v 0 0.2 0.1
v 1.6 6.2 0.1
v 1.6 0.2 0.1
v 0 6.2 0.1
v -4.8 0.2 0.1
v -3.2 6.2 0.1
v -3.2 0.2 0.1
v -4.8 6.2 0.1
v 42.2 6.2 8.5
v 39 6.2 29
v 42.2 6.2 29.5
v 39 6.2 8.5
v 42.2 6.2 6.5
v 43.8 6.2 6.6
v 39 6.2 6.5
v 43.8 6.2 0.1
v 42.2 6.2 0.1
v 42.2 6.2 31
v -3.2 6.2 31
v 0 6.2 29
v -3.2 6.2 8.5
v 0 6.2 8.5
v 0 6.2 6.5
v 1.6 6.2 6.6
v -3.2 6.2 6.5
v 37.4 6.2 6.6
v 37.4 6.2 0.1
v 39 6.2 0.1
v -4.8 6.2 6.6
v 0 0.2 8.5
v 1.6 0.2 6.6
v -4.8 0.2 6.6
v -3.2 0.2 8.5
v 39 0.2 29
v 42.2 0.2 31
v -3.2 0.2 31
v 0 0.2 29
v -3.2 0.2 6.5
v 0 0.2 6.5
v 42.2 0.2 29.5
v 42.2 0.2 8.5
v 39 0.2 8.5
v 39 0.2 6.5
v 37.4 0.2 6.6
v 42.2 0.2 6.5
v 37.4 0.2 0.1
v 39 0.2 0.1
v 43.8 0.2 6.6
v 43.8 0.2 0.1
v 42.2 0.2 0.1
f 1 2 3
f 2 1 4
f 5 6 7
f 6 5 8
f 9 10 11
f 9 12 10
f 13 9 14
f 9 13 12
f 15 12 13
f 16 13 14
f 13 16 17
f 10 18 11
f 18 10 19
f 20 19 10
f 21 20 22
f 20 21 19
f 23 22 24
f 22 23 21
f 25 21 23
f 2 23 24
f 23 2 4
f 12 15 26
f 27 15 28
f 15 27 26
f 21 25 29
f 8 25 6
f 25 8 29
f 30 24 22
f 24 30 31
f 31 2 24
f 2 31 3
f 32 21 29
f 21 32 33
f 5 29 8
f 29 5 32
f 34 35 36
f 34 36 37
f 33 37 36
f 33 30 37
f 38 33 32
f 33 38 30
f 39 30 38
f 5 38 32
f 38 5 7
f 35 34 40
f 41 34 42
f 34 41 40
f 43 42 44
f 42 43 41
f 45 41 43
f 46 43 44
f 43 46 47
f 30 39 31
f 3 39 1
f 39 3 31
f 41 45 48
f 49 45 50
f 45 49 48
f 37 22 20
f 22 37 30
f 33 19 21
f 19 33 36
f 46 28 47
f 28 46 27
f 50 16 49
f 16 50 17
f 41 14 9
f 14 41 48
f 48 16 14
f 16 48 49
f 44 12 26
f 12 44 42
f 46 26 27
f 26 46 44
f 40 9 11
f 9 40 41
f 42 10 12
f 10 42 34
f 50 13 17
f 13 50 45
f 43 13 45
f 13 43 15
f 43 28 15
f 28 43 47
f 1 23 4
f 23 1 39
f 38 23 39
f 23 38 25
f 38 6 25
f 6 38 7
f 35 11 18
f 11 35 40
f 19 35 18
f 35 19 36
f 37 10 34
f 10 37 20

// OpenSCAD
module rail_end() {
   cube([3.2,12,6.5]); //rail
}

module pin() {
  rotate([0,90,0])
  cylinder(d=2, h=7, $fn=24);
}

module chassis() {
translate([39,0,0]) //left_rail
  rail_end(); 
translate([-3.2,0,0]) //right_rail
  rail_end(); 
}

module foot() {
hull() {
  translate([-4.8,.2,0.1])
    cube([6.4,6,6.5]);

  translate([-3.2,.2,6.5])
    cube([3.2,6,2]);
  }
//post
translate([-3.2,.2,8.5])
    cube([3.2,6,21]);
}

// Top support
translate([-3.2,.2,29])
    cube([6.4 + 39,6,2]);


module feet() {
 //Feet
foot();

translate([39+3.2,0,0])
    foot();   
}

difference() {
  feet();
chassis();
}
